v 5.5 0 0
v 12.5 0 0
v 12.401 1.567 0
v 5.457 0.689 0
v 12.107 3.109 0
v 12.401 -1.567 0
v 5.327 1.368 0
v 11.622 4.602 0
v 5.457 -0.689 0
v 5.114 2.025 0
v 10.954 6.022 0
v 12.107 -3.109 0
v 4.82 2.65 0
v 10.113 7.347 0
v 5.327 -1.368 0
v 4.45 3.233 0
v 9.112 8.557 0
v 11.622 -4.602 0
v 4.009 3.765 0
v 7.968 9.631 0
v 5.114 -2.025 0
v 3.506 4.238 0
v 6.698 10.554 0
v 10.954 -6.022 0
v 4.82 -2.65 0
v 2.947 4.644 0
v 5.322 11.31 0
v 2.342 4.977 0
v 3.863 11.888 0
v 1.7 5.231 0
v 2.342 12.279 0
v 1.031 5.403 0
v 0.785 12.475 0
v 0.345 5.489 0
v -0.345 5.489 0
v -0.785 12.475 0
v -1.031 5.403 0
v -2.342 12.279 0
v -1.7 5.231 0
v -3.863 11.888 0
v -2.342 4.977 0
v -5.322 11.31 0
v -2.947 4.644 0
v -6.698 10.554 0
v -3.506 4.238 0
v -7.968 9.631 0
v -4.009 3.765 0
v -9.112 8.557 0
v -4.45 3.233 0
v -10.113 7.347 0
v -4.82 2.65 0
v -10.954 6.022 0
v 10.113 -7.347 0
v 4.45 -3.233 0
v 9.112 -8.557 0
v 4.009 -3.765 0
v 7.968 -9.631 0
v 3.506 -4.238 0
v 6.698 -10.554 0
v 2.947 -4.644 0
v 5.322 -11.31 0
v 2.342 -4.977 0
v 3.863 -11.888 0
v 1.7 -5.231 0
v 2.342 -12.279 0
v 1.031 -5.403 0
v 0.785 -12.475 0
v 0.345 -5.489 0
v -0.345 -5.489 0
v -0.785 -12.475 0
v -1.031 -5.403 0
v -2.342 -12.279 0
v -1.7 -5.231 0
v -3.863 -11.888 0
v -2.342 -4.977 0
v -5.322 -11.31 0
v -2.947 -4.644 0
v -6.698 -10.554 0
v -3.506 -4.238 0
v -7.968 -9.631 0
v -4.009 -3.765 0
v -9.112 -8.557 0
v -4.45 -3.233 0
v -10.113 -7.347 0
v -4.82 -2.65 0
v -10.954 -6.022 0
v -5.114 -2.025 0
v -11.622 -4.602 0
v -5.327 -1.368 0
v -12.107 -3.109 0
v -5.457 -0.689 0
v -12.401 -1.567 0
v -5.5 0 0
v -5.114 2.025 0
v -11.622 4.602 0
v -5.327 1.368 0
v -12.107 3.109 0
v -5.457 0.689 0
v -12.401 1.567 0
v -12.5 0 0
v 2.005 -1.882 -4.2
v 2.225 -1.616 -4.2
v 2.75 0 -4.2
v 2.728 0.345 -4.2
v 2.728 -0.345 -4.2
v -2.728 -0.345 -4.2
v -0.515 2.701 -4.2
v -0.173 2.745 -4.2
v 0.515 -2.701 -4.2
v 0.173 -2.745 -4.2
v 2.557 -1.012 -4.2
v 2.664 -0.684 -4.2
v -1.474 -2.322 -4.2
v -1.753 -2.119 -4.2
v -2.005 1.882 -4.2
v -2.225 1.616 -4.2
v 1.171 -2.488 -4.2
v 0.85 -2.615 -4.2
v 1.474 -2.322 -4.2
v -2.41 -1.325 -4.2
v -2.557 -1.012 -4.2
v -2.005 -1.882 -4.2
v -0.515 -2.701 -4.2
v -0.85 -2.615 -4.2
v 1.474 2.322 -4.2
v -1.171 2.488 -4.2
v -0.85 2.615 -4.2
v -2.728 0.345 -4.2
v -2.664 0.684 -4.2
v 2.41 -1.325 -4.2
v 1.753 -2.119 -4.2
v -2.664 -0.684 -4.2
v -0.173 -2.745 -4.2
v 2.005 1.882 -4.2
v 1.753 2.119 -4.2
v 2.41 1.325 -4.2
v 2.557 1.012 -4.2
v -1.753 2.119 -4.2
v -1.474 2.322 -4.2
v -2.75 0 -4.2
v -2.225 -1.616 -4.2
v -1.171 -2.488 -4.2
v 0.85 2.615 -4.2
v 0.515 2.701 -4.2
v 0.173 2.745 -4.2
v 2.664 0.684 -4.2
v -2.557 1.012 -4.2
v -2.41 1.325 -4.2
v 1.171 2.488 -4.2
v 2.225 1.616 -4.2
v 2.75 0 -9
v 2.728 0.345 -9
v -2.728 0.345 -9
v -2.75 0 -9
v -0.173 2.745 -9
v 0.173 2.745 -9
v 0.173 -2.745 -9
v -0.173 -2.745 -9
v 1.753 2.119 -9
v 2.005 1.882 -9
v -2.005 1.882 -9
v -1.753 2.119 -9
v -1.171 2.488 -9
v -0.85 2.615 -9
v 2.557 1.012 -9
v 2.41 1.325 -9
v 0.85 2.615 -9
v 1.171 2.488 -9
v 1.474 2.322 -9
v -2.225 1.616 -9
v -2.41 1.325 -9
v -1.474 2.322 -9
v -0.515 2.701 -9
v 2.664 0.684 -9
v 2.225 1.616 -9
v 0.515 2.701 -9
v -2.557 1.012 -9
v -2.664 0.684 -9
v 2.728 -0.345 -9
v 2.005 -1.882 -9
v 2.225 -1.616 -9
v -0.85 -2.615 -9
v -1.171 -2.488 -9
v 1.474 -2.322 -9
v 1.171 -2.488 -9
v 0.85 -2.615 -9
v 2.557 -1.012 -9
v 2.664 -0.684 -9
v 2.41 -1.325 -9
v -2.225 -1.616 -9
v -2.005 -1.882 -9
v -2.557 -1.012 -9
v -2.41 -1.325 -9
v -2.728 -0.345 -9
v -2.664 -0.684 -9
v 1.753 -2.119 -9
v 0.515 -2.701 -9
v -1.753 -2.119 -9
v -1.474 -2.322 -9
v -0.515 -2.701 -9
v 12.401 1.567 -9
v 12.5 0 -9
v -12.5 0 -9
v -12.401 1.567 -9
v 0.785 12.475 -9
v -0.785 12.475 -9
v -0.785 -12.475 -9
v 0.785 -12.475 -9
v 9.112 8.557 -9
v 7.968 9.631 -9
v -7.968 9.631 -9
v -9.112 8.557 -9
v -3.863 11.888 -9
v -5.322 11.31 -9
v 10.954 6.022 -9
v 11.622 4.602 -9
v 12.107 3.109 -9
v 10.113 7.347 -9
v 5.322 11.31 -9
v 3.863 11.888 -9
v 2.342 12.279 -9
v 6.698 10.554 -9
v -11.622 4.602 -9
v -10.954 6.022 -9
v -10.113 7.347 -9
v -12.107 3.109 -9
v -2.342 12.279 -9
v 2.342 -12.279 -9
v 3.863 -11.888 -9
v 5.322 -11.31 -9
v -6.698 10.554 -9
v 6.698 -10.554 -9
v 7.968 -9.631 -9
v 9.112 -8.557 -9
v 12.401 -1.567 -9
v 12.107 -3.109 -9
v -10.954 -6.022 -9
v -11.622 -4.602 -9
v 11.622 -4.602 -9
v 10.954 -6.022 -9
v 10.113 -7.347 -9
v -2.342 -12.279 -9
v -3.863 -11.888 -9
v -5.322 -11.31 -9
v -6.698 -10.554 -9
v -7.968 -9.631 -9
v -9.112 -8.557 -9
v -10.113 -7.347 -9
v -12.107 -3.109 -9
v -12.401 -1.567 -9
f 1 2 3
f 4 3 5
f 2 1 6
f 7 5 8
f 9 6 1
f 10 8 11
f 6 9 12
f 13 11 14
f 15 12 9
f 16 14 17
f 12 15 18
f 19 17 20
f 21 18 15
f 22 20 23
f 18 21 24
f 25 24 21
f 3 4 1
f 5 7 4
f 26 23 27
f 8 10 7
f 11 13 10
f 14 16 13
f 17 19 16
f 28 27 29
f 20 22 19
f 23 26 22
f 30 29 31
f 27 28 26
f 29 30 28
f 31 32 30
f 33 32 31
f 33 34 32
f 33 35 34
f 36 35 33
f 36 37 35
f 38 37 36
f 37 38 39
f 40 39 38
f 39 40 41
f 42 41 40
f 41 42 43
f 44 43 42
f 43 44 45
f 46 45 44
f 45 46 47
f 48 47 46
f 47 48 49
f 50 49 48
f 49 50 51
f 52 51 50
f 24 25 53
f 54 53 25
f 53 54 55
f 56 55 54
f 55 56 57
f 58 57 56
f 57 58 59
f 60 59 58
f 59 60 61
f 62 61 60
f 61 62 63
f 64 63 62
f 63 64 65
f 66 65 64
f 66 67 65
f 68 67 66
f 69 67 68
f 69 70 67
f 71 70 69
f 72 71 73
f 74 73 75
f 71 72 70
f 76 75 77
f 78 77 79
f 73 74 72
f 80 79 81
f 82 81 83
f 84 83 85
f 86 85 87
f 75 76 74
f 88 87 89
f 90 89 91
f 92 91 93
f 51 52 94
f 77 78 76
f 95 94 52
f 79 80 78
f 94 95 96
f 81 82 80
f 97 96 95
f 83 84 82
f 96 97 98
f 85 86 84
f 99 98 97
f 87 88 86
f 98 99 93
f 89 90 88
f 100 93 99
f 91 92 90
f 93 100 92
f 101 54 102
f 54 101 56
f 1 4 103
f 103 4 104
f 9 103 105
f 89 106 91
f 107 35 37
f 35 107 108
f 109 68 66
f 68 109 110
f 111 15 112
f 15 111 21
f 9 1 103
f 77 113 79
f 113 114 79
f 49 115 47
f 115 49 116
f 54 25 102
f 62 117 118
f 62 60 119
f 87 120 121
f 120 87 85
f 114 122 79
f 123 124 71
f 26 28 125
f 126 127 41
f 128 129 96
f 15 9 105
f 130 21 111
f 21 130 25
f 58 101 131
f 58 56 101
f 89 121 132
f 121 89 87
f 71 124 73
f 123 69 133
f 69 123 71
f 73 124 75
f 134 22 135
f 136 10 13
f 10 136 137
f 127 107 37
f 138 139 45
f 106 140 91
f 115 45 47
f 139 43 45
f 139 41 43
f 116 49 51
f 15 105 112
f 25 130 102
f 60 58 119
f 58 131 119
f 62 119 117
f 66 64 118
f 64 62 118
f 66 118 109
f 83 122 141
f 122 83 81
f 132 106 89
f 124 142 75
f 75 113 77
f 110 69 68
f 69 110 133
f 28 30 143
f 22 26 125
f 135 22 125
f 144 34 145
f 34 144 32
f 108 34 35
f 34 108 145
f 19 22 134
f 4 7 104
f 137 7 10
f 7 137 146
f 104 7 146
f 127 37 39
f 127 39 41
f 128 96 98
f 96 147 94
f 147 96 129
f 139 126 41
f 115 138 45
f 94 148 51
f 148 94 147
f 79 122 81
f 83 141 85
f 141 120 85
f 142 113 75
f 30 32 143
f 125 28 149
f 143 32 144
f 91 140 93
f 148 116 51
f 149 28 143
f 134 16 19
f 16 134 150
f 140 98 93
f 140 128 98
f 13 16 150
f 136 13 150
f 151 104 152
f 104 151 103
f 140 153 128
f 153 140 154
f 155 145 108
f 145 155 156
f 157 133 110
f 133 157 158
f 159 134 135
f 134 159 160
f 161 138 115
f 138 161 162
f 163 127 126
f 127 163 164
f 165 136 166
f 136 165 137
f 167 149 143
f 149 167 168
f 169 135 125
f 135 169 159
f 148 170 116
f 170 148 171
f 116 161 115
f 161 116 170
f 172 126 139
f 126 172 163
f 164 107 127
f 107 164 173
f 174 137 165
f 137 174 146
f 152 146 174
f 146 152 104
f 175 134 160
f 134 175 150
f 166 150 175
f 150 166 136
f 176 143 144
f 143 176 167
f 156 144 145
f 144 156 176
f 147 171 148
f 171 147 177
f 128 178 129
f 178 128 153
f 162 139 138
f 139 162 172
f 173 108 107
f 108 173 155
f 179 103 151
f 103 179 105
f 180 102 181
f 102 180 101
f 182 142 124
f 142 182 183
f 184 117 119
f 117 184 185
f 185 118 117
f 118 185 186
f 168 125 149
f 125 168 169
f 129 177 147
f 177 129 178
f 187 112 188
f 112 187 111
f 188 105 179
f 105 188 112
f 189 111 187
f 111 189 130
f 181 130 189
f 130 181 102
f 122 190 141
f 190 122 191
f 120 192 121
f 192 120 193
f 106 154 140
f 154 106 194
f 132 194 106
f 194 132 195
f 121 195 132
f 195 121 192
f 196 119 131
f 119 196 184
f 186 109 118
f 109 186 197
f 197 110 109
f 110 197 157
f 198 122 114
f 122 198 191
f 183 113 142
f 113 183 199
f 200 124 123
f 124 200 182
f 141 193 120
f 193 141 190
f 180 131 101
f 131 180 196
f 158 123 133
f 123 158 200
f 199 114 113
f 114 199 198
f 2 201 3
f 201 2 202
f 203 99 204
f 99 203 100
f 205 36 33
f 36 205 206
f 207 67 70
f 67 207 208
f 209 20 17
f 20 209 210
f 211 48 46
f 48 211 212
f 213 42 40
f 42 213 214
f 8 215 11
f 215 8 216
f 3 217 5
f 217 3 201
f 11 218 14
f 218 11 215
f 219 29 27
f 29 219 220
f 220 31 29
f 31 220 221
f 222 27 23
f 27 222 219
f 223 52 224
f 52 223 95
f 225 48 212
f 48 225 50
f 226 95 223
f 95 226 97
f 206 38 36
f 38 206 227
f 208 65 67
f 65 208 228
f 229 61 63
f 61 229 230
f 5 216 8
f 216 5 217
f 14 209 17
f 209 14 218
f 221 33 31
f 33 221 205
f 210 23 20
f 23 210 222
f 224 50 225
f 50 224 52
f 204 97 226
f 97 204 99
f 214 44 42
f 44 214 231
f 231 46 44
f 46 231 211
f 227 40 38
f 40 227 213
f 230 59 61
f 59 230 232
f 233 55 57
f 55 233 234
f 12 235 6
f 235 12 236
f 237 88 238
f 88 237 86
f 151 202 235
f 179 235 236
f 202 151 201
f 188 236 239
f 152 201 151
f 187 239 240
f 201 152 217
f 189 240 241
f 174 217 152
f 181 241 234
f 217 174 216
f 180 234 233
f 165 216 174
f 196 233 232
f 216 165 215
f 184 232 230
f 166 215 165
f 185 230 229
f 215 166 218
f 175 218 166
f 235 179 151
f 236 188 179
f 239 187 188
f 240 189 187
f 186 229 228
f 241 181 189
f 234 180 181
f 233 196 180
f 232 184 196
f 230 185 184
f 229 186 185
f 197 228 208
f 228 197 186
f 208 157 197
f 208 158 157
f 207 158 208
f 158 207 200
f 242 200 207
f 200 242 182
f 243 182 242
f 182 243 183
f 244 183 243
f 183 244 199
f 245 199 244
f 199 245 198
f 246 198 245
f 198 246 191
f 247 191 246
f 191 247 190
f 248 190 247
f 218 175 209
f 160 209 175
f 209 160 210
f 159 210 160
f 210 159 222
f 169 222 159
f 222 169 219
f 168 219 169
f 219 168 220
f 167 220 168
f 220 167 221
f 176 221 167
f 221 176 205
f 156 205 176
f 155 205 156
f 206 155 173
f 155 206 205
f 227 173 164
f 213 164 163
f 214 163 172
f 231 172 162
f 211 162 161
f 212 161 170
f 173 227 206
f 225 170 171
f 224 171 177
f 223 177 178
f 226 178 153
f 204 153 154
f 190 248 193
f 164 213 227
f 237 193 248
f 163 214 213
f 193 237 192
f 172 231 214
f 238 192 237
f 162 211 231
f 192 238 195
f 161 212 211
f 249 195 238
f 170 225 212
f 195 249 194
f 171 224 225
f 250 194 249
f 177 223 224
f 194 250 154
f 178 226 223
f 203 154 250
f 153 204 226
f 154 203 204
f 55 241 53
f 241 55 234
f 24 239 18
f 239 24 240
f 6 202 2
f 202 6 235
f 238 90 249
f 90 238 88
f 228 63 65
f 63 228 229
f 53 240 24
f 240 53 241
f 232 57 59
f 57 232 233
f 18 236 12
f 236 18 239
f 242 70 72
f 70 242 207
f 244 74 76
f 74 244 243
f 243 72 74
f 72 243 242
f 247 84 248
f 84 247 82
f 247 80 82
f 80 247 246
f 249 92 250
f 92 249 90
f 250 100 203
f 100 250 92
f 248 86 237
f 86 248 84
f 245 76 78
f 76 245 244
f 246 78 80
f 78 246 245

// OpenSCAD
$fn = 50;

difference() {
	union() {
		translate(v = [0, 0, -9.0]) {
			cylinder(h = 9, r = 12.5);
		}
	}
	union() {
		translate(v = [0, 0, 0]) {
			rotate(a = [0, 0, 0]) {
				difference() {
					union() {
						translate(v = [0, 0, -12.0]) {
							cylinder(h = 12, r = 2.25);
						}
						translate(v = [0, 0, -4.2]) {
							cylinder(h = 4.2, r1 = 2.75, r2 = 5.5);
						}
						translate(v = [0, 0, -12.0]) {
							cylinder(h = 12, r = 2.75);
						}
						translate(v = [0, 0, -12.0]) {
							cylinder(h = 12, r = 2.25);
						}
					}
					union();
				}
			}
		}
	}
}
